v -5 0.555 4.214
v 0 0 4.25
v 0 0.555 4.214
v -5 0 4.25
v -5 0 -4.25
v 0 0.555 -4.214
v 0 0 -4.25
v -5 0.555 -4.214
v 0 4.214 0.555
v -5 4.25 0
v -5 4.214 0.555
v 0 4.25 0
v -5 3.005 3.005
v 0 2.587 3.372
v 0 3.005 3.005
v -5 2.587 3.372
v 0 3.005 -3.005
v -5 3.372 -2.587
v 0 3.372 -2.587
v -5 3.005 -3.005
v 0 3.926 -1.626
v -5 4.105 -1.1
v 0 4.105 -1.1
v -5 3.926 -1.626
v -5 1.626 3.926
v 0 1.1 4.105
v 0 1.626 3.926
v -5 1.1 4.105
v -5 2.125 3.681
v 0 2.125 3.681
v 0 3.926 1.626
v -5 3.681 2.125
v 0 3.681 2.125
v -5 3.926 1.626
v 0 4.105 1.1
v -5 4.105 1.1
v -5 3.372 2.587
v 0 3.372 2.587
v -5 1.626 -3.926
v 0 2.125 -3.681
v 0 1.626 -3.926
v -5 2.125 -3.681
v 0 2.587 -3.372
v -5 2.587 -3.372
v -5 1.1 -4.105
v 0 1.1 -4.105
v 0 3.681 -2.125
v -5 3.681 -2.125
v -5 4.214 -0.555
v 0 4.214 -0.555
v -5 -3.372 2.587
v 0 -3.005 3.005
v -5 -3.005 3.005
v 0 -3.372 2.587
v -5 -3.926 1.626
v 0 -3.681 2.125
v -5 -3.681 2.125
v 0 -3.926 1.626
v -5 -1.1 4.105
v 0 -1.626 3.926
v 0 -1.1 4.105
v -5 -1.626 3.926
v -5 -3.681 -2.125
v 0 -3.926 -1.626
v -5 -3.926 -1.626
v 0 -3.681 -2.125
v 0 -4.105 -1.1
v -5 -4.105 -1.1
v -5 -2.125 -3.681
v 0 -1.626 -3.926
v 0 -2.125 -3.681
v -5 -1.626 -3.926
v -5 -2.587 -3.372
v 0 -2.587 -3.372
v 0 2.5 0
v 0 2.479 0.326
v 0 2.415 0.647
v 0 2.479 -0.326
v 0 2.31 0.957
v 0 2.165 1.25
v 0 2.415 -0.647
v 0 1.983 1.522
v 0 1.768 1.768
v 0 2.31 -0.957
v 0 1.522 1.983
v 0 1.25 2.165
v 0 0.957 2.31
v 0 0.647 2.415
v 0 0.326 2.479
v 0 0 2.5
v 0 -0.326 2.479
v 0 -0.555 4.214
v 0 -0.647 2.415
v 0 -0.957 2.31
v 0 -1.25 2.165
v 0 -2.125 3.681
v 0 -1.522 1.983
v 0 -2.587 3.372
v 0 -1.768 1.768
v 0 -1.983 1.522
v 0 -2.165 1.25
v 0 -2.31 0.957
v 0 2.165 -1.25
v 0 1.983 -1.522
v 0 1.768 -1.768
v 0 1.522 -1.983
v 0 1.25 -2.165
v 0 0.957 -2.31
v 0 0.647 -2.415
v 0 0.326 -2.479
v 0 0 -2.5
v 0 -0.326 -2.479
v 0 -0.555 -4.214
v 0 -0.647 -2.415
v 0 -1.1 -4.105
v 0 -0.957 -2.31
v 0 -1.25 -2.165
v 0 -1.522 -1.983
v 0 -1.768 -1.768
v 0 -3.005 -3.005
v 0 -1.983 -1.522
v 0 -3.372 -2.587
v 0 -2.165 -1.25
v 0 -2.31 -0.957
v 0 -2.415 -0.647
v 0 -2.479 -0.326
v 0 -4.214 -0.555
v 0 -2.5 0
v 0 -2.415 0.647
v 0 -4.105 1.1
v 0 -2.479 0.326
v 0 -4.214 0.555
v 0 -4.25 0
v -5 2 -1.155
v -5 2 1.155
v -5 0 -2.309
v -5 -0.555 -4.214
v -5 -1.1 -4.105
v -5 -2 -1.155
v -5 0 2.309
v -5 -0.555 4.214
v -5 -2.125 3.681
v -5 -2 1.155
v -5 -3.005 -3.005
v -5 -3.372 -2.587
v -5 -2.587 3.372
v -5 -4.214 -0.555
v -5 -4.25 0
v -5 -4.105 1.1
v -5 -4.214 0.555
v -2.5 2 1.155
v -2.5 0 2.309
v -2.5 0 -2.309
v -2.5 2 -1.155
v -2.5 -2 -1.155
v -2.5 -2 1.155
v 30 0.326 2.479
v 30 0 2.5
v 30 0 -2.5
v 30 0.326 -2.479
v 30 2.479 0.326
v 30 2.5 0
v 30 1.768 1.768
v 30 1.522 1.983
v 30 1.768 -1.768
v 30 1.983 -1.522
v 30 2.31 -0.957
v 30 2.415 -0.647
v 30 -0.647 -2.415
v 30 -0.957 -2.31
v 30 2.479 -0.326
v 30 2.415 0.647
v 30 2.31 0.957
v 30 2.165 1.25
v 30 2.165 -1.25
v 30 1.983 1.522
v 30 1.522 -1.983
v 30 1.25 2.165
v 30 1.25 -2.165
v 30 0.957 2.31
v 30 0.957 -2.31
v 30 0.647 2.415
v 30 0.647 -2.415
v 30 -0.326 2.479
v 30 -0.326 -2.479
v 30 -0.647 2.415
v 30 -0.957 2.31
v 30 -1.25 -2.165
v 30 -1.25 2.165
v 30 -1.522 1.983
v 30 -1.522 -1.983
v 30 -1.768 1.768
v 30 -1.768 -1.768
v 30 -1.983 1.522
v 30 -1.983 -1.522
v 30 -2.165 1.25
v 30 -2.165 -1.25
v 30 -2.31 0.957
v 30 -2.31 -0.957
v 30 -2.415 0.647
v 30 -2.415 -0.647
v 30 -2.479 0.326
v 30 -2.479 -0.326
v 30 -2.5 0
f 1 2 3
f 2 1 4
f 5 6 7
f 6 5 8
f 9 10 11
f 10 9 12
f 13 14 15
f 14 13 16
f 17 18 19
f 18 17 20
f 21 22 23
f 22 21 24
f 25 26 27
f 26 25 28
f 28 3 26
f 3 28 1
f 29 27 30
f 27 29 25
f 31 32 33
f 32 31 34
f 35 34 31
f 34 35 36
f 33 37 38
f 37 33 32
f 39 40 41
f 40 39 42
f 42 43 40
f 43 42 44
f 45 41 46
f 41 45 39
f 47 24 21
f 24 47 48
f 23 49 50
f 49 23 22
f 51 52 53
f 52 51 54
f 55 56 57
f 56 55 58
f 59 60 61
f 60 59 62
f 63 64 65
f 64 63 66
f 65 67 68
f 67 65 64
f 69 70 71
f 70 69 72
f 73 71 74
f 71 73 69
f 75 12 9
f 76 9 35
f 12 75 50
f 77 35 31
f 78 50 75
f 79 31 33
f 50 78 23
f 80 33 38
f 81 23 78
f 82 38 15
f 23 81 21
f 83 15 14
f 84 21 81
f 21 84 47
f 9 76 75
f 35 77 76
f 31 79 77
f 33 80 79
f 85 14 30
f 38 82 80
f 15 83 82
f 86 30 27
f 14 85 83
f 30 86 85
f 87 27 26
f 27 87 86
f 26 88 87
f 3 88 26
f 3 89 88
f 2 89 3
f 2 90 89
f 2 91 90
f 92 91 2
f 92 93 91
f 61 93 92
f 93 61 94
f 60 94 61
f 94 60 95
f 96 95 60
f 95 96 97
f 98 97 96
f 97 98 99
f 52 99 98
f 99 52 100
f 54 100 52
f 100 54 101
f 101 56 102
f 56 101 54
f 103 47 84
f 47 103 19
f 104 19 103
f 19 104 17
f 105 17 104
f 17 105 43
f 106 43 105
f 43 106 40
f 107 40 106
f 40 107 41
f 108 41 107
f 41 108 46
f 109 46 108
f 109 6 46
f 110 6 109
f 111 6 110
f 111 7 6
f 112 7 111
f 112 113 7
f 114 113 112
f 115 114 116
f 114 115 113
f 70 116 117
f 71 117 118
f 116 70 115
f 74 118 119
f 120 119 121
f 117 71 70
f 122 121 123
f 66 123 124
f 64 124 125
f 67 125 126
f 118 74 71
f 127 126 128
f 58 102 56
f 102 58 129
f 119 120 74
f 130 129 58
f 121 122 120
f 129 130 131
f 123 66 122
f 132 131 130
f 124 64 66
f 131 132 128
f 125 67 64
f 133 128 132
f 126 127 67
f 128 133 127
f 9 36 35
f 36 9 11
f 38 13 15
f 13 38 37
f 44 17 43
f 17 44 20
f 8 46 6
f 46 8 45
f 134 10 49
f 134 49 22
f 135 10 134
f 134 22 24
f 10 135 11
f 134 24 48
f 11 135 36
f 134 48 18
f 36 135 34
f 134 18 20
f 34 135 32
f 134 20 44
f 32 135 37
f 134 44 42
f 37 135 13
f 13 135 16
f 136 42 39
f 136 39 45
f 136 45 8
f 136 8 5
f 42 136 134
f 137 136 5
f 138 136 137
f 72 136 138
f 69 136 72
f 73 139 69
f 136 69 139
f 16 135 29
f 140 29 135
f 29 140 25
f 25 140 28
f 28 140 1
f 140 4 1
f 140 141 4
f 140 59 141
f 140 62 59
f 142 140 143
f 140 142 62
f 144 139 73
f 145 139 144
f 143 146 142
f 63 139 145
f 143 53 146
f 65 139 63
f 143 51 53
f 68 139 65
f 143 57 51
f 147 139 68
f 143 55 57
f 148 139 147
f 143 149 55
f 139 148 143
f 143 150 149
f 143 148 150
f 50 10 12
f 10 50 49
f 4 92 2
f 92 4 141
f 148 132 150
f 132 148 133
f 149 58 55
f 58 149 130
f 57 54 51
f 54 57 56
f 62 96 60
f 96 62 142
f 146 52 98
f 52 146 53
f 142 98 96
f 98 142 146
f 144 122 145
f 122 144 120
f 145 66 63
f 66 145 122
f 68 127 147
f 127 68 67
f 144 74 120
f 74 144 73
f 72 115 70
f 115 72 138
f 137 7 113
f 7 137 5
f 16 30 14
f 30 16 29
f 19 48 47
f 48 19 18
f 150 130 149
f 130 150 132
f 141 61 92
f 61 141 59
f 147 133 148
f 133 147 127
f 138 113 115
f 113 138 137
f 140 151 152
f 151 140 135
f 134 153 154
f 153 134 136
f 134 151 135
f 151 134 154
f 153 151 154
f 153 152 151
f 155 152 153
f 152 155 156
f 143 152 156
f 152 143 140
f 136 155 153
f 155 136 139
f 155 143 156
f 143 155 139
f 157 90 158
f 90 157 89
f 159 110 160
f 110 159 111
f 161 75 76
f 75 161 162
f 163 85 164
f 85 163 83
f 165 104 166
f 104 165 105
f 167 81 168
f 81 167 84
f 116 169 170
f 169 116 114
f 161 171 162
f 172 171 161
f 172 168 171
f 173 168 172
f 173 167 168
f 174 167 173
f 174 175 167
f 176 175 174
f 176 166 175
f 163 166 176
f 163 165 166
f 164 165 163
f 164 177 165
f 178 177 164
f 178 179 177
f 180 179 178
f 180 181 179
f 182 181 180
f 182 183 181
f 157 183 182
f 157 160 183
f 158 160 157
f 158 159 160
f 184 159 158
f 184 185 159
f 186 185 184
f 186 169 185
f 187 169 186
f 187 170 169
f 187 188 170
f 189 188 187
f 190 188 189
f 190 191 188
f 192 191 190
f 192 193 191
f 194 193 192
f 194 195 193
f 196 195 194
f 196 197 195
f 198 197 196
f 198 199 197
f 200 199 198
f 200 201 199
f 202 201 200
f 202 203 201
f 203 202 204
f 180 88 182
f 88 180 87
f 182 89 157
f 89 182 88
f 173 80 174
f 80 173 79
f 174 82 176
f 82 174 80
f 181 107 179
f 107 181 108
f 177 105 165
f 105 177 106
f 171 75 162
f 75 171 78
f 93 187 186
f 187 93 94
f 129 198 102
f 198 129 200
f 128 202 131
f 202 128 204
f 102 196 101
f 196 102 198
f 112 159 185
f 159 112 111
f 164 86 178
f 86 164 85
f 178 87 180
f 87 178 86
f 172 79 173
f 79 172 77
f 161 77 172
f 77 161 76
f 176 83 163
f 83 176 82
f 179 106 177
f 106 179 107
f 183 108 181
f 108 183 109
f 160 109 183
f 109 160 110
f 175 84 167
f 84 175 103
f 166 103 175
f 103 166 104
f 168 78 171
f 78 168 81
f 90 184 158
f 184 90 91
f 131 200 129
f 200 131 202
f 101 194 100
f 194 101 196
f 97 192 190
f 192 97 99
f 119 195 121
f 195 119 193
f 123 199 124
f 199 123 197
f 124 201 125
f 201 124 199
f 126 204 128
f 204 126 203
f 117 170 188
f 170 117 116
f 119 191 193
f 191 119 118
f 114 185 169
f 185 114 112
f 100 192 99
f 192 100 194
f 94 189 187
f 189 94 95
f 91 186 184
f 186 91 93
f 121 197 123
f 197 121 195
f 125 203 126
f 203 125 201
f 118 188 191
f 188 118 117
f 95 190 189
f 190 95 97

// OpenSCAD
// file: ../../../lib/nutsnbolts/data-access.scad
// Norm Nuts and Bolts - a OpenSCAD library
// Copyright (C) 2012  Johannes Kneer

// This program is free software: you can redistribute it and/or modify
// it under the terms of the GNU General Public License as published by
// the Free Software Foundation, either version 3 of the License, or
// (at your option) any later version.

// This program is distributed in the hope that it will be useful,
// but WITHOUT ANY WARRANTY; without even the implied warranty of
// MERCHANTABILITY or FITNESS FOR A PARTICULAR PURPOSE.  See the
// GNU General Public License for more details.

// You should have received a copy of the GNU General Public License
// along with this program.  If not, see <http://www.gnu.org/licenses/>.


// DATABASE ACCESS FUNCTIONS AND CONSTANTS



// == CONSTANTS ==

// screw table access keys
_NB_S_DESC            = 0;
_NB_S_FAMKEY			    = 1;
_NB_S_LENGTH          = 2;
_NB_S_NOTHREAD_LENGTH = 3;

_NB_F_DESC			      = 0;
_NB_F_OUTER_DIA       = 1;
_NB_F_INNER_DIA       = 2;
_NB_F_LEAD            = 3;
_NB_F_KEY             = 4;
_NB_F_KEY_DEPTH       = 5;
_NB_F_HEAD_HEIGHT     = 6;
_NB_F_HEAD_DIA        = 7;
_NB_F_NUT_KEY         = 8;
_NB_F_NUT_HEIGHT      = 9;
_NB_F_PITCH_FINE      = 10;
_NB_F_PITCH_MEDIUM    = 11;
_NB_F_PITCH_COARSE    = 12;


// == FUNCTIONS ==

// _get_screw("descriptor")   with descriptor = M8x25
//   find the line for a general object in the data matrix

function _get_screw(n) = data_screw[search([n], data_screw)[0]];
function _get_screw_fam(n) = data_screw_fam[search([_get_screw(n)[_NB_S_FAMKEY]], data_screw_fam)[0]];

function _get_fam(n) = data_screw_fam[search([n], data_screw_fam)[0]];


// _get_XXXXX("descriptor") functions
// find a single property in the database

function _get_desc(n)        = _get_screw(n)[_NB_S_DESC];
function _get_famkey(n)         = _get_screw(n)[_NB_S_FAMKEY];
function _get_length(n)      = _get_screw(n)[_NB_S_LENGTH];
function _get_nt_length(n)   = _get_screw(n)[_NB_S_NOTHREAD_LENGTH];

function _get_outer_dia(n)   = _get_screw_fam(n)[_NB_F_OUTER_DIA];
function _get_inner_dia(n)   = _get_screw_fam(n)[_NB_F_INNER_DIA];
function _get_lead(n)        = _get_screw_fam(n)[_NB_F_LEAD];
function _get_head_height(n) = _get_screw_fam(n)[_NB_F_HEAD_HEIGHT];
function _get_head_dia(n)    = _get_screw_fam(n)[_NB_F_HEAD_DIA];
function _get_nut_key(n)     = _get_screw_fam(n)[_NB_F_NUT_KEY];
function _get_nut_height(n)  = _get_screw_fam(n)[_NB_F_NUT_HEIGHT];
function _get_fine_pitch(n)  = _get_screw_fam(n)[_NB_F_PITCH_FINE];
function _get_medium_pitch(n)  = _get_screw_fam(n)[_NB_F_PITCH_MEDIUM];
function _get_coarse_pitch(n)  = _get_screw_fam(n)[_NB_F_PITCH_COARSE];
// main file
/**********************************************************************************************************************
 **
 ** parts/vitamins/screw_M5x30.scad
 **
 ** This file renders a screw of the dimensions specified by the file name.
 **
 **********************************************************************************************************************/

include <../../../lib/nutsnbolts/cyl_head_bolt.scad>;

$fn = 48;
rotate([0, -90, 0])
	screw("M5x30"); 
